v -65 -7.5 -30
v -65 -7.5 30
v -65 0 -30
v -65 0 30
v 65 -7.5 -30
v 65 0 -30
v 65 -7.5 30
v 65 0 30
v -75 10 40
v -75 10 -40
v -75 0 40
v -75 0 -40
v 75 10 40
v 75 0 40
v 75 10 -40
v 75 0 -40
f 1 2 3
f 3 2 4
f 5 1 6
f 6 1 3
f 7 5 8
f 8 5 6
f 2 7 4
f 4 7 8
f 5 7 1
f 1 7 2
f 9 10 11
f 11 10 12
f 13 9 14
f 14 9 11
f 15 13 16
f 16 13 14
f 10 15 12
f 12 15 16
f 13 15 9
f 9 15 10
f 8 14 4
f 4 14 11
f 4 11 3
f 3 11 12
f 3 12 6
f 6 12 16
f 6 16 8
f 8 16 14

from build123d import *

# Parameters (mm, degrees)
CROQUIS1_W              = 130
CROQUIS1_H              = 60
SALIENTE_EXTRUIR1_DEPTH = 7.5
CROQUIS1_4_W            = 150
CROQUIS1_4_H            = 80
SALIENTE_EXTRUIR2_DEPTH = 10


with BuildPart() as part:
    # Croquis1 → Saliente-Extruir1 (new body)
    with BuildSketch(Plane(origin=(0, 0, 0), x_dir=(1, 0, 0), z_dir=(0, 1, 0))):
        Rectangle(CROQUIS1_W, CROQUIS1_H)
    extrude(amount=-SALIENTE_EXTRUIR1_DEPTH)

    # Croquis1<4> → Saliente-Extruir2 (add)
    with BuildSketch(Plane(origin=(0, 0, 0), x_dir=(1, 0, 0), z_dir=(0, 1, 0))):
        Rectangle(CROQUIS1_4_W, CROQUIS1_4_H)
    extrude(amount=SALIENTE_EXTRUIR2_DEPTH)


solid = part.part
